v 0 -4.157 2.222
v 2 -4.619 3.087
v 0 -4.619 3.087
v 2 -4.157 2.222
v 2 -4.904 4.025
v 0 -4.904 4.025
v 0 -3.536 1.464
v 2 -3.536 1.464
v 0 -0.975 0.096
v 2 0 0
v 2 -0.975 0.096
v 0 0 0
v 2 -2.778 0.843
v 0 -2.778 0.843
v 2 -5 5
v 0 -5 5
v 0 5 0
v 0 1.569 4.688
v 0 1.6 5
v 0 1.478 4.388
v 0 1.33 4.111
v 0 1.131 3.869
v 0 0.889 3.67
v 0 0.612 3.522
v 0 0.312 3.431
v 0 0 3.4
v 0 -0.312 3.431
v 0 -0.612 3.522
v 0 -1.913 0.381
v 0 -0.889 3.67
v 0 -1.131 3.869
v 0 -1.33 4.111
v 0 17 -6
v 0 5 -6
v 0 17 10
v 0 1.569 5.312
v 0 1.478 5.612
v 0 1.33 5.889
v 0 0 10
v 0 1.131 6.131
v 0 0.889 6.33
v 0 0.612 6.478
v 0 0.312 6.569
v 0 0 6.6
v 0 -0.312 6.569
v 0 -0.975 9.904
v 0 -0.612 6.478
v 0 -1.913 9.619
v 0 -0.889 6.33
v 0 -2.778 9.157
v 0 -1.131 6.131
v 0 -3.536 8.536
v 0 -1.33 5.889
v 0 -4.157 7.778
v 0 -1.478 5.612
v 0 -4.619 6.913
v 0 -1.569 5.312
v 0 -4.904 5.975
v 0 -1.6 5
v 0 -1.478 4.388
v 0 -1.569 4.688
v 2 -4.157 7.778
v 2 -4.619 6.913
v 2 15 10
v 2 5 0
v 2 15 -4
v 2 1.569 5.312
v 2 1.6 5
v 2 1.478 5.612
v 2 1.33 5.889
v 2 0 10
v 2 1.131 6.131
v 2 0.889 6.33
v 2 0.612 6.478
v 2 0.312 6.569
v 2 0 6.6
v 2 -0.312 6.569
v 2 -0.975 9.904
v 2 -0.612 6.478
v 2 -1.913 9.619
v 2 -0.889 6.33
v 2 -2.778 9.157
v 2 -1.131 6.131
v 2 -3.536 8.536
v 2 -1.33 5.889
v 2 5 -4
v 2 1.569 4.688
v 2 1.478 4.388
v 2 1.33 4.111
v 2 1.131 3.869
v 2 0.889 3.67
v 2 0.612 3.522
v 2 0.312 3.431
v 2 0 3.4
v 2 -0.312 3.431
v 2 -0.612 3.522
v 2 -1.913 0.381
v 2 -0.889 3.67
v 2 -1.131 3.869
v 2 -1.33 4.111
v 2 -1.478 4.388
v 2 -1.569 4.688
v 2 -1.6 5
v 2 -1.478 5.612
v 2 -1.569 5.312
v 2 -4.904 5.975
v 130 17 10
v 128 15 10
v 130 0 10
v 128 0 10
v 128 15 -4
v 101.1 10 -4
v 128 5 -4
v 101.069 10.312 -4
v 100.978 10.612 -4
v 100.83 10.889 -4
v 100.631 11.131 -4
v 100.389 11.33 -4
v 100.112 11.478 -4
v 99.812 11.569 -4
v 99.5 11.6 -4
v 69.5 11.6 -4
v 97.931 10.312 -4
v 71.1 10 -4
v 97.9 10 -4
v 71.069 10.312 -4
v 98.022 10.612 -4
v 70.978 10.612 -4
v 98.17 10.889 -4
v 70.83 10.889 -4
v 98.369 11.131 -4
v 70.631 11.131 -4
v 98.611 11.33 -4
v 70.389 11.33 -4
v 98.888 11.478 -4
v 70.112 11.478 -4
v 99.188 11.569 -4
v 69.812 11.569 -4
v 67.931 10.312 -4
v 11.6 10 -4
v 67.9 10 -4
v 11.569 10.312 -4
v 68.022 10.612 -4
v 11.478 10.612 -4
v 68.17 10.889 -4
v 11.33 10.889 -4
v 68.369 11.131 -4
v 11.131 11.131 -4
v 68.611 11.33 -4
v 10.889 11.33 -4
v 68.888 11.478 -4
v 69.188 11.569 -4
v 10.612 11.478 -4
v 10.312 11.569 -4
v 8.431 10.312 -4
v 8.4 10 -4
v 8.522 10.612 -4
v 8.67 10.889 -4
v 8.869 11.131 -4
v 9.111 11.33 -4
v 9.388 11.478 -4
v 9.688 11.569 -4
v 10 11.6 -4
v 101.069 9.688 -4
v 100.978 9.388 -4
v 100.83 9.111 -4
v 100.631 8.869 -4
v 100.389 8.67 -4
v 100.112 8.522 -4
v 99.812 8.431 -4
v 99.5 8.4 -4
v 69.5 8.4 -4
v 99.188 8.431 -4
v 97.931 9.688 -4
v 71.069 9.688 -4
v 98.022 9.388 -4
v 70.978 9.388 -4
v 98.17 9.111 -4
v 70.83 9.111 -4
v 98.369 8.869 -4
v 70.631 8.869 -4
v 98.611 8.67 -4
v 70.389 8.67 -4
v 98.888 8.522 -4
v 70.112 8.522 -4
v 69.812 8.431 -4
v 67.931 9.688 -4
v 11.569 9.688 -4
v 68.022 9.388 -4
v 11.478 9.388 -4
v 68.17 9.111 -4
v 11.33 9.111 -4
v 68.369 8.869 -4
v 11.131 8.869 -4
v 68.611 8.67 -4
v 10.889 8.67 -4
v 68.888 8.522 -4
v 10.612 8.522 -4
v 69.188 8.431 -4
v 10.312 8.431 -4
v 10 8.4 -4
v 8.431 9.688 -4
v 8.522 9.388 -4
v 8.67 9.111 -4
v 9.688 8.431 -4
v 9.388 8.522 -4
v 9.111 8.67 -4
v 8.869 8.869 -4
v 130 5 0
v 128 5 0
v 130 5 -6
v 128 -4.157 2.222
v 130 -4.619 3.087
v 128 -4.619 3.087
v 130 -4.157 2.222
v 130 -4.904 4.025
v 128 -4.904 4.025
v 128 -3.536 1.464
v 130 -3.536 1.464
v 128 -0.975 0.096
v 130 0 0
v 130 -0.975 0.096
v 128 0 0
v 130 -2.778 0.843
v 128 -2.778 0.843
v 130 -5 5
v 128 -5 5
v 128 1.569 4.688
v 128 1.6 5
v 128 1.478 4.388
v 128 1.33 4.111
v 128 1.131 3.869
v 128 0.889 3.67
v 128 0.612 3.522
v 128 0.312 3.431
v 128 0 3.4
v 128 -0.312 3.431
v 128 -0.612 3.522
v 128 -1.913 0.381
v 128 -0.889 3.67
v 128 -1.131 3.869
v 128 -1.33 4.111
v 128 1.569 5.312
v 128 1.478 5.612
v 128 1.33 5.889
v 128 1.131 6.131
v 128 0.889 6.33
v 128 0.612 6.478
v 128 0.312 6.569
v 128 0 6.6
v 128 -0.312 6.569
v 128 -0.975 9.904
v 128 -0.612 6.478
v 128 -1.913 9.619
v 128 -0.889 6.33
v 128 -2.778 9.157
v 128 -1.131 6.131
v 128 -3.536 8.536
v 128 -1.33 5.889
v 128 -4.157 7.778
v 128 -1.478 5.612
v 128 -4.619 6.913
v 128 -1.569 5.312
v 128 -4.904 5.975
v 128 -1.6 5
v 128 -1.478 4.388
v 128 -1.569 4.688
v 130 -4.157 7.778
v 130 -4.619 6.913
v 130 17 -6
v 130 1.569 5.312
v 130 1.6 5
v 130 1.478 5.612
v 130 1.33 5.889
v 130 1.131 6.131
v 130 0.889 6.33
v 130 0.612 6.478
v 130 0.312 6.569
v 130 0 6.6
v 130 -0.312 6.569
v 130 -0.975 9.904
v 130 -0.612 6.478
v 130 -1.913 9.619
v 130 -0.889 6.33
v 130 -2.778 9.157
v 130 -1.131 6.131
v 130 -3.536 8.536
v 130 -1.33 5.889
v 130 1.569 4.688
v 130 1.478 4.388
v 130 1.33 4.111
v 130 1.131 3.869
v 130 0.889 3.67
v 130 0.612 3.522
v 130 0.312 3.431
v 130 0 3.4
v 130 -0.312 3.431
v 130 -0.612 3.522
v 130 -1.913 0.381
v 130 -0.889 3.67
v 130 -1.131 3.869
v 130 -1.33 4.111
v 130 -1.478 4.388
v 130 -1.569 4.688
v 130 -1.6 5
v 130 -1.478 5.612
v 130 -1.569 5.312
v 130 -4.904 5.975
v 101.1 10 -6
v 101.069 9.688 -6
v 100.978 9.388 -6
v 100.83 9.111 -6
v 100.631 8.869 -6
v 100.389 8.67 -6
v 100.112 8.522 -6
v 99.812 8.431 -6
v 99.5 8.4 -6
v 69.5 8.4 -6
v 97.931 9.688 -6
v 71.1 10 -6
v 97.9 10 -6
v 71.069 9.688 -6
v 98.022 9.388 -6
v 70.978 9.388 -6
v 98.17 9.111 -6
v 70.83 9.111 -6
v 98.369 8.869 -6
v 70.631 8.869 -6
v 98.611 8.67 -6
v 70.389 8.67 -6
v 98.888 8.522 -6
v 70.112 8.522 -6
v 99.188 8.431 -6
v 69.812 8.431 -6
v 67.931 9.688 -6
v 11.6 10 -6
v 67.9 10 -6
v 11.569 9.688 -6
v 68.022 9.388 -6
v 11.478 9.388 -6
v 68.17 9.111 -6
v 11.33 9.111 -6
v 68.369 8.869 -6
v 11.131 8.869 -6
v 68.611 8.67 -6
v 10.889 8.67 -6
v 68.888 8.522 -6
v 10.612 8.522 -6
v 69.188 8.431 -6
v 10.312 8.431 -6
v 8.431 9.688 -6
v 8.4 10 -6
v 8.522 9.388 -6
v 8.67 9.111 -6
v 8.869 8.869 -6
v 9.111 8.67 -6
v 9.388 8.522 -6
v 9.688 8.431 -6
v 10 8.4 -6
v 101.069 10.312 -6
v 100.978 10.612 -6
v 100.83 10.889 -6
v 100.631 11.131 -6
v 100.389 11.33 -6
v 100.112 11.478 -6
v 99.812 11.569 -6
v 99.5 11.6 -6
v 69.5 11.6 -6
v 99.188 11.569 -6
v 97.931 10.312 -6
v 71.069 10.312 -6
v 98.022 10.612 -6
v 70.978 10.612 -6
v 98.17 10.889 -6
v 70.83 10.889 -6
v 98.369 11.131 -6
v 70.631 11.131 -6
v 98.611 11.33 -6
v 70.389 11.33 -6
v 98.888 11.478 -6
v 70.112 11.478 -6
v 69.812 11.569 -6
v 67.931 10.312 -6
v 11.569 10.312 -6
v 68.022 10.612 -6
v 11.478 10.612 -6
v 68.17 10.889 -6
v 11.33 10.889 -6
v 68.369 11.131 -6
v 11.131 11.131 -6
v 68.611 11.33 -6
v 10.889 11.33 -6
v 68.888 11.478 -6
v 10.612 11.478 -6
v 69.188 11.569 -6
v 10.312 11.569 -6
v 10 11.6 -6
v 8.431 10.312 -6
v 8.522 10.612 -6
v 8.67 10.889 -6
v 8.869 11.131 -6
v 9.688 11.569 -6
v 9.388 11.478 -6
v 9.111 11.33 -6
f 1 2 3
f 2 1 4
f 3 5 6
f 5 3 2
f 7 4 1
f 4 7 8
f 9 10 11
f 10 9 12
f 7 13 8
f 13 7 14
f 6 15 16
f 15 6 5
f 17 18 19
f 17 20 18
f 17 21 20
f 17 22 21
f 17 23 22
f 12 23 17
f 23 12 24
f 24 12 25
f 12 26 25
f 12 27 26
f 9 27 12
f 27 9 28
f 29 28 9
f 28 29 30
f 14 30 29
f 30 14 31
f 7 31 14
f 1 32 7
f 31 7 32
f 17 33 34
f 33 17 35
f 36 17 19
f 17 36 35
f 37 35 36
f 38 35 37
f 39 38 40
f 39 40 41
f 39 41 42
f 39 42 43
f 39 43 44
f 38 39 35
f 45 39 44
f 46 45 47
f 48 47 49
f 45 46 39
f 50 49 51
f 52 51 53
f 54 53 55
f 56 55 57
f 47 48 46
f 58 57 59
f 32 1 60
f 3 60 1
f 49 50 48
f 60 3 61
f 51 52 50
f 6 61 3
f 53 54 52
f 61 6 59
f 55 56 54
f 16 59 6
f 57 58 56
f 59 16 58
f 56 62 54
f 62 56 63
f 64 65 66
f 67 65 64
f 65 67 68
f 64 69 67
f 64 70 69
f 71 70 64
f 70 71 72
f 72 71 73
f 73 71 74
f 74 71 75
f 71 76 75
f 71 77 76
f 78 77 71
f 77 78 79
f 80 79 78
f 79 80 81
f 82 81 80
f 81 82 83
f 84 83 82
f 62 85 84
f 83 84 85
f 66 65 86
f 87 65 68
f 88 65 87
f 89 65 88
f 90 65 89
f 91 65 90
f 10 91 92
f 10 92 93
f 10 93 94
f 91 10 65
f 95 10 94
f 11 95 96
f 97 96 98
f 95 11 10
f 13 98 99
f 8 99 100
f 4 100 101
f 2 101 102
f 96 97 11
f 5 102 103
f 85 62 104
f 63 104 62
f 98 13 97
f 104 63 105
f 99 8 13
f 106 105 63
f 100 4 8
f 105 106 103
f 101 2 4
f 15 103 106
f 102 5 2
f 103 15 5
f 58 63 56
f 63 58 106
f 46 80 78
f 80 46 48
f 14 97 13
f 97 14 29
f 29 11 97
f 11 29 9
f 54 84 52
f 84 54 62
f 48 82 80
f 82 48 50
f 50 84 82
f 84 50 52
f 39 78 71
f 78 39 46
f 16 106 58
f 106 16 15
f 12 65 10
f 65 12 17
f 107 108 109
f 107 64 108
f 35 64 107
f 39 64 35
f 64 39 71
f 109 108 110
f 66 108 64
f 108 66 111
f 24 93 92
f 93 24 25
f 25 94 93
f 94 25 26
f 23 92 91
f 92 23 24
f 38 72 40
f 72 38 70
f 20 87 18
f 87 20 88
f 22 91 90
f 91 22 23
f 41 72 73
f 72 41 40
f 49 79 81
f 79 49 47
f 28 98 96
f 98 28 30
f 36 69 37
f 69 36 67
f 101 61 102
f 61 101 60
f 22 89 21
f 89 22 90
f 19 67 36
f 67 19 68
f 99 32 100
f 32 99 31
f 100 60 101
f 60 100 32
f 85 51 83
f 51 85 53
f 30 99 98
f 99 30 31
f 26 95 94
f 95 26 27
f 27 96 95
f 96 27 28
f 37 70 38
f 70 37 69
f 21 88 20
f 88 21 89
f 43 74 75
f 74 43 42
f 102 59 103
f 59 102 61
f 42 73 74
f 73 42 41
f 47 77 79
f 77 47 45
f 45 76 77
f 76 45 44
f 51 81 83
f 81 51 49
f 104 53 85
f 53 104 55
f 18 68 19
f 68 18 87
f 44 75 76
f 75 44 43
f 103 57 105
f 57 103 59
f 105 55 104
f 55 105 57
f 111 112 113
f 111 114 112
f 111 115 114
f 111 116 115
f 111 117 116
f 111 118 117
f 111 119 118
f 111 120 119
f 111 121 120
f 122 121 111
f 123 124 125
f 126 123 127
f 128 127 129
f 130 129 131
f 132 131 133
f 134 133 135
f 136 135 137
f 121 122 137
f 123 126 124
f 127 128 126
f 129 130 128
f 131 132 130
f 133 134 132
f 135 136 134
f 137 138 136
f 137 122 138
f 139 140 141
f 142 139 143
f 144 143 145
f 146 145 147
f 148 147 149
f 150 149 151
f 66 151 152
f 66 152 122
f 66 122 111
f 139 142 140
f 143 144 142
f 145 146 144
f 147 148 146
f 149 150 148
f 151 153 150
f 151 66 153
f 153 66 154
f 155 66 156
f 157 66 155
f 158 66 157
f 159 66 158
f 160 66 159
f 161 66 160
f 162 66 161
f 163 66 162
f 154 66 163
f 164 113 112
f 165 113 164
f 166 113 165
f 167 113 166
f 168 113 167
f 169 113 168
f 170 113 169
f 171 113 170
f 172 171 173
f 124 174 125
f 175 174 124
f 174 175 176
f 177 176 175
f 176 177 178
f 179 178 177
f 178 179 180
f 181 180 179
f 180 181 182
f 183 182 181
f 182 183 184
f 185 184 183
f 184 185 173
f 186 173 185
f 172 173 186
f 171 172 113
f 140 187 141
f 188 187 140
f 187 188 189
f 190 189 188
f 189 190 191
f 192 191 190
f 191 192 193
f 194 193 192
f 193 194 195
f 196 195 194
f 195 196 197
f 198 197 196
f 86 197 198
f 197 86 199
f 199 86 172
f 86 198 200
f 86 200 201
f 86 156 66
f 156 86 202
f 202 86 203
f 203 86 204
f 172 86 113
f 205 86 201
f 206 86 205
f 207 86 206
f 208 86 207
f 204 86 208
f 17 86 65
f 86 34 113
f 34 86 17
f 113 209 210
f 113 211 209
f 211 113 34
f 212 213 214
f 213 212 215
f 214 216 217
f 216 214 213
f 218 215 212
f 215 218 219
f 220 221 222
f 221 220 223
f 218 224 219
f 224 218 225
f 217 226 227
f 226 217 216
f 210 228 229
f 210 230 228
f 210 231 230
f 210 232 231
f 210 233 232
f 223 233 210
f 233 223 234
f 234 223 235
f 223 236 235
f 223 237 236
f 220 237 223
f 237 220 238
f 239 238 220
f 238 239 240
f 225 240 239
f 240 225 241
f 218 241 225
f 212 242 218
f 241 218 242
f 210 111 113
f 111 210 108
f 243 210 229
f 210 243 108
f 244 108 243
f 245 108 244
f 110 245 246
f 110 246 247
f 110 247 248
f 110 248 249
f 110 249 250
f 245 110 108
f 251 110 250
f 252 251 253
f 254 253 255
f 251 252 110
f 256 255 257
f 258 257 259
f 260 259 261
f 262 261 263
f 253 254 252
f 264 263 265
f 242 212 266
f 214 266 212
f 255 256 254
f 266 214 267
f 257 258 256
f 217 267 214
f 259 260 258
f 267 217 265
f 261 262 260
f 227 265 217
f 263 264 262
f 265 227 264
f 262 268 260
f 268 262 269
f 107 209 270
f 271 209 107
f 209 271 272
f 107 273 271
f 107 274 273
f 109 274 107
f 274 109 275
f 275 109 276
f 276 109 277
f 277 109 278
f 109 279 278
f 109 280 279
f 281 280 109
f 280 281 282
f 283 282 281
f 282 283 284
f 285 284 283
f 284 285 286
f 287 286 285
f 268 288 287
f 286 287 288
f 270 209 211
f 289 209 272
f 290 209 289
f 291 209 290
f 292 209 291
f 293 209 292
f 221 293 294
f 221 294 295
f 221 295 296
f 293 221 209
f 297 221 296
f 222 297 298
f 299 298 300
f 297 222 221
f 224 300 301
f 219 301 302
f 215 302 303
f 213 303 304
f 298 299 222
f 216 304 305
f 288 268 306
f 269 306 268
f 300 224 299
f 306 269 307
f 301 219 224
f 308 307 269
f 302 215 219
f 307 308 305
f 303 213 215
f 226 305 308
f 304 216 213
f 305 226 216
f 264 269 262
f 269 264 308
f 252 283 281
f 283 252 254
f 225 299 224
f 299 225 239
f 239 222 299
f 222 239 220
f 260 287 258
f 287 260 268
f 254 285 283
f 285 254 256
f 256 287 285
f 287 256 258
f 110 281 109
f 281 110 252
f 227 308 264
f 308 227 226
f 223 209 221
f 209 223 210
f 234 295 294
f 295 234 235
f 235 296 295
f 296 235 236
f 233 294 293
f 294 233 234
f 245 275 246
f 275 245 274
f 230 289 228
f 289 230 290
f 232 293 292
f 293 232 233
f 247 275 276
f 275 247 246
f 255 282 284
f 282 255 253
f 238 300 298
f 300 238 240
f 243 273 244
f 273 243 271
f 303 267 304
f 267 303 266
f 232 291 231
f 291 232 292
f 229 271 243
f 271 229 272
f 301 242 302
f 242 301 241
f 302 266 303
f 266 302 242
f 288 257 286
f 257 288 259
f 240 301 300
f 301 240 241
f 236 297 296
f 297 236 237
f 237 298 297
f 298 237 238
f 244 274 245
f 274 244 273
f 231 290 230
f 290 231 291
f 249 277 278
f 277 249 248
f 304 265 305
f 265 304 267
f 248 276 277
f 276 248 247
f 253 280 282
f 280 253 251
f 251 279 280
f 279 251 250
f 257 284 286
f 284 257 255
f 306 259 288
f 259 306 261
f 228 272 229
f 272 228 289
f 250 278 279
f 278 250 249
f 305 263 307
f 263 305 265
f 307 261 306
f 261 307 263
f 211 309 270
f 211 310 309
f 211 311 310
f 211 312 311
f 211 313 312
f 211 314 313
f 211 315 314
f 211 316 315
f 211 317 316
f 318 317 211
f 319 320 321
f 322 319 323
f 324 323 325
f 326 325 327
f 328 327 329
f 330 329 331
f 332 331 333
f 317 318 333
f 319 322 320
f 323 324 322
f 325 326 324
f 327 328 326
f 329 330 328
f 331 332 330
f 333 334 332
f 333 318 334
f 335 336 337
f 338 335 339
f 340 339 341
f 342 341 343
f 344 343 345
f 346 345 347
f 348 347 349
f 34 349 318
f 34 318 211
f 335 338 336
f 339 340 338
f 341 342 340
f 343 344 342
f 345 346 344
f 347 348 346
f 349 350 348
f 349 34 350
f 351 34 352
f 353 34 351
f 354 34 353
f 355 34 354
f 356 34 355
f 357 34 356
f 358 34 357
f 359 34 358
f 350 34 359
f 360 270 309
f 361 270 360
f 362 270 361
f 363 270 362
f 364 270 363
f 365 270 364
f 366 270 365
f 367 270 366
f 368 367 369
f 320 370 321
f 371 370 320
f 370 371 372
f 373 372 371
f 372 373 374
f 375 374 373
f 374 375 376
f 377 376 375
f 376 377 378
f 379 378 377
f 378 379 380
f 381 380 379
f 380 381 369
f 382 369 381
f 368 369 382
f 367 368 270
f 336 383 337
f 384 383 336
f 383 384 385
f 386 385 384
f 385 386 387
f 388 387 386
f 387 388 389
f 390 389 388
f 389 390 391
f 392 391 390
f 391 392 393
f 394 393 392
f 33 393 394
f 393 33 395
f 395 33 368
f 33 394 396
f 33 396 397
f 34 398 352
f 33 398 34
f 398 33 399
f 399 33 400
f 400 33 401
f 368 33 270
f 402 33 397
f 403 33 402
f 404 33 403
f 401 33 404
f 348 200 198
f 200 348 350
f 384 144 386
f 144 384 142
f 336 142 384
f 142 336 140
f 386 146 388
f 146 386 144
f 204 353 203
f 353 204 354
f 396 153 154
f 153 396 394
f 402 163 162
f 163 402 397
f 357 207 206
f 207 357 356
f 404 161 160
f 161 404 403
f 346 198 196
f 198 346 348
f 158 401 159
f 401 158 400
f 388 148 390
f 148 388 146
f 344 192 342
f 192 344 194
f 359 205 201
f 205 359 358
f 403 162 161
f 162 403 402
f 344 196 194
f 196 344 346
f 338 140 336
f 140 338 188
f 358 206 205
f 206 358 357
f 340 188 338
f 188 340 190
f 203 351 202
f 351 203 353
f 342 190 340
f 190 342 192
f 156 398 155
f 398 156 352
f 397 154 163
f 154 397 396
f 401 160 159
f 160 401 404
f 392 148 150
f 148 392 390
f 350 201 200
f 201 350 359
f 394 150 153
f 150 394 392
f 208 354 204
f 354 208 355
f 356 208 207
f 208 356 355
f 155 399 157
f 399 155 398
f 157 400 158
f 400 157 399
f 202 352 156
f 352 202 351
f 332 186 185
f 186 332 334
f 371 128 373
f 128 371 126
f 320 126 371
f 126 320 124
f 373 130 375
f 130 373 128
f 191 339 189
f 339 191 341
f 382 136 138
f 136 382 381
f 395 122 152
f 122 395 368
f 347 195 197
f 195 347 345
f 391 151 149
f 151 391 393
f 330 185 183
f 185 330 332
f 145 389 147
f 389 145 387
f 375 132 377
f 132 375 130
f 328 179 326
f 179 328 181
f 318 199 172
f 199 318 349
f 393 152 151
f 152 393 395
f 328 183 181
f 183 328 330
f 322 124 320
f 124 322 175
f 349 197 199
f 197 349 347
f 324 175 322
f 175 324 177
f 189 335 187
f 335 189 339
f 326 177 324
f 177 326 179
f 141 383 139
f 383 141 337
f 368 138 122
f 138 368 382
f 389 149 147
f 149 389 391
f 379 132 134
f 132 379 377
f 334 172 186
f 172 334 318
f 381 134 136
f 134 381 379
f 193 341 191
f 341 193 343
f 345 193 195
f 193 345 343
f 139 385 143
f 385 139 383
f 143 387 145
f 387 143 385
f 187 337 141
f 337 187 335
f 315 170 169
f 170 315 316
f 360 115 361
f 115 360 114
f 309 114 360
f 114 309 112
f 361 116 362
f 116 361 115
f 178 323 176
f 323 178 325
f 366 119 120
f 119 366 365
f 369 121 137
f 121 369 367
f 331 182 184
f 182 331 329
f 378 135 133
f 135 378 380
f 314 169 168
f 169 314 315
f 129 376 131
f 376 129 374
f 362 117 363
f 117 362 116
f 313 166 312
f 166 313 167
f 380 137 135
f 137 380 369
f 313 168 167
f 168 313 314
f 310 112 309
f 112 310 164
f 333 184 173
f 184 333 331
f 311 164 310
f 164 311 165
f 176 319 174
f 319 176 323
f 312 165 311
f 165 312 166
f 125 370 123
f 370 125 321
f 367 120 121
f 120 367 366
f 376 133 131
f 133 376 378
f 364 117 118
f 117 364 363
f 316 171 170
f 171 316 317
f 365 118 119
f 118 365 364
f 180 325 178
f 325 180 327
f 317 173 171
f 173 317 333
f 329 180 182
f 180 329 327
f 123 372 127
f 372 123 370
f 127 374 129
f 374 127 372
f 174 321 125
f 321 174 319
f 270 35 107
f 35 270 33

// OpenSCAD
// euroCardGotekMount2

$fn = 32;

cardSupportDist = 130.0;
gotekMountOffset = 10.0;
holeDiam = 3.2;
mountThick = 2.0;
mountWidth = 10.0;
mountDepth = 122.0;
gotekWidth = 100.0;

module cardSupportMount() {
    difference() {
        union() {
            cylinder(d = mountWidth, h = mountThick);
            translate([-mountWidth/2, 0, 0]) cube([mountWidth, mountWidth * 1.5, mountThick]);
        }
        translate([0, 0, -0.01]) cylinder(d = holeDiam, h = mountThick + 0.02);
    }
    translate([mountWidth/2, mountWidth/2, 0]) cube([4, mountWidth, mountThick]);
}

//mirror([1, 0, 0]) {
    translate([0, 0, mountWidth/2]) {
        rotate([0, 90, 0]) cardSupportMount();
        translate([cardSupportDist - mountThick, 0, 0]) rotate([0, 90, 0]) cardSupportMount();
    }
    gotekMountDepthOffset = 6;
    translate([0, mountWidth/2, -gotekMountDepthOffset]) {
        difference() {
            cube([cardSupportDist, mountWidth, mountThick]);
            translate([10, mountWidth/2, -0.01]) cylinder(d = holeDiam, h = mountThick + 0.02);
            translate([10 + 59.5, mountWidth/2, -0.01]) cylinder(d = holeDiam, h = mountThick + 0.02);
            translate([10 + 89.5, mountWidth/2, -0.01]) cylinder(d = holeDiam, h = mountThick + 0.02);
        }
    }

    translate([0, gotekMountOffset * 1.5, -gotekMountDepthOffset]) {
            cube([cardSupportDist, mountThick, mountWidth * 2 - mountThick*2]);
    }
//}
